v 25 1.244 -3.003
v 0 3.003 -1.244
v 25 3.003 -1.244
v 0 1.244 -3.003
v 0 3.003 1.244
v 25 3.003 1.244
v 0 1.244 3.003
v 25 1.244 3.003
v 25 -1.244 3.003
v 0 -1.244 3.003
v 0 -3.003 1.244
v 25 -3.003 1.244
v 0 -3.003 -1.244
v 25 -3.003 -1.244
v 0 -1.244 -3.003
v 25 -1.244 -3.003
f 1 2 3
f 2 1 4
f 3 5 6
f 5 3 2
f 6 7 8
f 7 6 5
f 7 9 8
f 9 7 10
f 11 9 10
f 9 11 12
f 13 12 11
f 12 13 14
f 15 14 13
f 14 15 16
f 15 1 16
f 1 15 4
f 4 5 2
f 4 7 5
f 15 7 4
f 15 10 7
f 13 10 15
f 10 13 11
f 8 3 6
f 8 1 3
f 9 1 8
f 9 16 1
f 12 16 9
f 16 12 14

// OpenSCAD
       rotate([0,90,0])     
            rotate([0,0,360/16])
                cylinder(d=6.5,h=25,$fn=8);
